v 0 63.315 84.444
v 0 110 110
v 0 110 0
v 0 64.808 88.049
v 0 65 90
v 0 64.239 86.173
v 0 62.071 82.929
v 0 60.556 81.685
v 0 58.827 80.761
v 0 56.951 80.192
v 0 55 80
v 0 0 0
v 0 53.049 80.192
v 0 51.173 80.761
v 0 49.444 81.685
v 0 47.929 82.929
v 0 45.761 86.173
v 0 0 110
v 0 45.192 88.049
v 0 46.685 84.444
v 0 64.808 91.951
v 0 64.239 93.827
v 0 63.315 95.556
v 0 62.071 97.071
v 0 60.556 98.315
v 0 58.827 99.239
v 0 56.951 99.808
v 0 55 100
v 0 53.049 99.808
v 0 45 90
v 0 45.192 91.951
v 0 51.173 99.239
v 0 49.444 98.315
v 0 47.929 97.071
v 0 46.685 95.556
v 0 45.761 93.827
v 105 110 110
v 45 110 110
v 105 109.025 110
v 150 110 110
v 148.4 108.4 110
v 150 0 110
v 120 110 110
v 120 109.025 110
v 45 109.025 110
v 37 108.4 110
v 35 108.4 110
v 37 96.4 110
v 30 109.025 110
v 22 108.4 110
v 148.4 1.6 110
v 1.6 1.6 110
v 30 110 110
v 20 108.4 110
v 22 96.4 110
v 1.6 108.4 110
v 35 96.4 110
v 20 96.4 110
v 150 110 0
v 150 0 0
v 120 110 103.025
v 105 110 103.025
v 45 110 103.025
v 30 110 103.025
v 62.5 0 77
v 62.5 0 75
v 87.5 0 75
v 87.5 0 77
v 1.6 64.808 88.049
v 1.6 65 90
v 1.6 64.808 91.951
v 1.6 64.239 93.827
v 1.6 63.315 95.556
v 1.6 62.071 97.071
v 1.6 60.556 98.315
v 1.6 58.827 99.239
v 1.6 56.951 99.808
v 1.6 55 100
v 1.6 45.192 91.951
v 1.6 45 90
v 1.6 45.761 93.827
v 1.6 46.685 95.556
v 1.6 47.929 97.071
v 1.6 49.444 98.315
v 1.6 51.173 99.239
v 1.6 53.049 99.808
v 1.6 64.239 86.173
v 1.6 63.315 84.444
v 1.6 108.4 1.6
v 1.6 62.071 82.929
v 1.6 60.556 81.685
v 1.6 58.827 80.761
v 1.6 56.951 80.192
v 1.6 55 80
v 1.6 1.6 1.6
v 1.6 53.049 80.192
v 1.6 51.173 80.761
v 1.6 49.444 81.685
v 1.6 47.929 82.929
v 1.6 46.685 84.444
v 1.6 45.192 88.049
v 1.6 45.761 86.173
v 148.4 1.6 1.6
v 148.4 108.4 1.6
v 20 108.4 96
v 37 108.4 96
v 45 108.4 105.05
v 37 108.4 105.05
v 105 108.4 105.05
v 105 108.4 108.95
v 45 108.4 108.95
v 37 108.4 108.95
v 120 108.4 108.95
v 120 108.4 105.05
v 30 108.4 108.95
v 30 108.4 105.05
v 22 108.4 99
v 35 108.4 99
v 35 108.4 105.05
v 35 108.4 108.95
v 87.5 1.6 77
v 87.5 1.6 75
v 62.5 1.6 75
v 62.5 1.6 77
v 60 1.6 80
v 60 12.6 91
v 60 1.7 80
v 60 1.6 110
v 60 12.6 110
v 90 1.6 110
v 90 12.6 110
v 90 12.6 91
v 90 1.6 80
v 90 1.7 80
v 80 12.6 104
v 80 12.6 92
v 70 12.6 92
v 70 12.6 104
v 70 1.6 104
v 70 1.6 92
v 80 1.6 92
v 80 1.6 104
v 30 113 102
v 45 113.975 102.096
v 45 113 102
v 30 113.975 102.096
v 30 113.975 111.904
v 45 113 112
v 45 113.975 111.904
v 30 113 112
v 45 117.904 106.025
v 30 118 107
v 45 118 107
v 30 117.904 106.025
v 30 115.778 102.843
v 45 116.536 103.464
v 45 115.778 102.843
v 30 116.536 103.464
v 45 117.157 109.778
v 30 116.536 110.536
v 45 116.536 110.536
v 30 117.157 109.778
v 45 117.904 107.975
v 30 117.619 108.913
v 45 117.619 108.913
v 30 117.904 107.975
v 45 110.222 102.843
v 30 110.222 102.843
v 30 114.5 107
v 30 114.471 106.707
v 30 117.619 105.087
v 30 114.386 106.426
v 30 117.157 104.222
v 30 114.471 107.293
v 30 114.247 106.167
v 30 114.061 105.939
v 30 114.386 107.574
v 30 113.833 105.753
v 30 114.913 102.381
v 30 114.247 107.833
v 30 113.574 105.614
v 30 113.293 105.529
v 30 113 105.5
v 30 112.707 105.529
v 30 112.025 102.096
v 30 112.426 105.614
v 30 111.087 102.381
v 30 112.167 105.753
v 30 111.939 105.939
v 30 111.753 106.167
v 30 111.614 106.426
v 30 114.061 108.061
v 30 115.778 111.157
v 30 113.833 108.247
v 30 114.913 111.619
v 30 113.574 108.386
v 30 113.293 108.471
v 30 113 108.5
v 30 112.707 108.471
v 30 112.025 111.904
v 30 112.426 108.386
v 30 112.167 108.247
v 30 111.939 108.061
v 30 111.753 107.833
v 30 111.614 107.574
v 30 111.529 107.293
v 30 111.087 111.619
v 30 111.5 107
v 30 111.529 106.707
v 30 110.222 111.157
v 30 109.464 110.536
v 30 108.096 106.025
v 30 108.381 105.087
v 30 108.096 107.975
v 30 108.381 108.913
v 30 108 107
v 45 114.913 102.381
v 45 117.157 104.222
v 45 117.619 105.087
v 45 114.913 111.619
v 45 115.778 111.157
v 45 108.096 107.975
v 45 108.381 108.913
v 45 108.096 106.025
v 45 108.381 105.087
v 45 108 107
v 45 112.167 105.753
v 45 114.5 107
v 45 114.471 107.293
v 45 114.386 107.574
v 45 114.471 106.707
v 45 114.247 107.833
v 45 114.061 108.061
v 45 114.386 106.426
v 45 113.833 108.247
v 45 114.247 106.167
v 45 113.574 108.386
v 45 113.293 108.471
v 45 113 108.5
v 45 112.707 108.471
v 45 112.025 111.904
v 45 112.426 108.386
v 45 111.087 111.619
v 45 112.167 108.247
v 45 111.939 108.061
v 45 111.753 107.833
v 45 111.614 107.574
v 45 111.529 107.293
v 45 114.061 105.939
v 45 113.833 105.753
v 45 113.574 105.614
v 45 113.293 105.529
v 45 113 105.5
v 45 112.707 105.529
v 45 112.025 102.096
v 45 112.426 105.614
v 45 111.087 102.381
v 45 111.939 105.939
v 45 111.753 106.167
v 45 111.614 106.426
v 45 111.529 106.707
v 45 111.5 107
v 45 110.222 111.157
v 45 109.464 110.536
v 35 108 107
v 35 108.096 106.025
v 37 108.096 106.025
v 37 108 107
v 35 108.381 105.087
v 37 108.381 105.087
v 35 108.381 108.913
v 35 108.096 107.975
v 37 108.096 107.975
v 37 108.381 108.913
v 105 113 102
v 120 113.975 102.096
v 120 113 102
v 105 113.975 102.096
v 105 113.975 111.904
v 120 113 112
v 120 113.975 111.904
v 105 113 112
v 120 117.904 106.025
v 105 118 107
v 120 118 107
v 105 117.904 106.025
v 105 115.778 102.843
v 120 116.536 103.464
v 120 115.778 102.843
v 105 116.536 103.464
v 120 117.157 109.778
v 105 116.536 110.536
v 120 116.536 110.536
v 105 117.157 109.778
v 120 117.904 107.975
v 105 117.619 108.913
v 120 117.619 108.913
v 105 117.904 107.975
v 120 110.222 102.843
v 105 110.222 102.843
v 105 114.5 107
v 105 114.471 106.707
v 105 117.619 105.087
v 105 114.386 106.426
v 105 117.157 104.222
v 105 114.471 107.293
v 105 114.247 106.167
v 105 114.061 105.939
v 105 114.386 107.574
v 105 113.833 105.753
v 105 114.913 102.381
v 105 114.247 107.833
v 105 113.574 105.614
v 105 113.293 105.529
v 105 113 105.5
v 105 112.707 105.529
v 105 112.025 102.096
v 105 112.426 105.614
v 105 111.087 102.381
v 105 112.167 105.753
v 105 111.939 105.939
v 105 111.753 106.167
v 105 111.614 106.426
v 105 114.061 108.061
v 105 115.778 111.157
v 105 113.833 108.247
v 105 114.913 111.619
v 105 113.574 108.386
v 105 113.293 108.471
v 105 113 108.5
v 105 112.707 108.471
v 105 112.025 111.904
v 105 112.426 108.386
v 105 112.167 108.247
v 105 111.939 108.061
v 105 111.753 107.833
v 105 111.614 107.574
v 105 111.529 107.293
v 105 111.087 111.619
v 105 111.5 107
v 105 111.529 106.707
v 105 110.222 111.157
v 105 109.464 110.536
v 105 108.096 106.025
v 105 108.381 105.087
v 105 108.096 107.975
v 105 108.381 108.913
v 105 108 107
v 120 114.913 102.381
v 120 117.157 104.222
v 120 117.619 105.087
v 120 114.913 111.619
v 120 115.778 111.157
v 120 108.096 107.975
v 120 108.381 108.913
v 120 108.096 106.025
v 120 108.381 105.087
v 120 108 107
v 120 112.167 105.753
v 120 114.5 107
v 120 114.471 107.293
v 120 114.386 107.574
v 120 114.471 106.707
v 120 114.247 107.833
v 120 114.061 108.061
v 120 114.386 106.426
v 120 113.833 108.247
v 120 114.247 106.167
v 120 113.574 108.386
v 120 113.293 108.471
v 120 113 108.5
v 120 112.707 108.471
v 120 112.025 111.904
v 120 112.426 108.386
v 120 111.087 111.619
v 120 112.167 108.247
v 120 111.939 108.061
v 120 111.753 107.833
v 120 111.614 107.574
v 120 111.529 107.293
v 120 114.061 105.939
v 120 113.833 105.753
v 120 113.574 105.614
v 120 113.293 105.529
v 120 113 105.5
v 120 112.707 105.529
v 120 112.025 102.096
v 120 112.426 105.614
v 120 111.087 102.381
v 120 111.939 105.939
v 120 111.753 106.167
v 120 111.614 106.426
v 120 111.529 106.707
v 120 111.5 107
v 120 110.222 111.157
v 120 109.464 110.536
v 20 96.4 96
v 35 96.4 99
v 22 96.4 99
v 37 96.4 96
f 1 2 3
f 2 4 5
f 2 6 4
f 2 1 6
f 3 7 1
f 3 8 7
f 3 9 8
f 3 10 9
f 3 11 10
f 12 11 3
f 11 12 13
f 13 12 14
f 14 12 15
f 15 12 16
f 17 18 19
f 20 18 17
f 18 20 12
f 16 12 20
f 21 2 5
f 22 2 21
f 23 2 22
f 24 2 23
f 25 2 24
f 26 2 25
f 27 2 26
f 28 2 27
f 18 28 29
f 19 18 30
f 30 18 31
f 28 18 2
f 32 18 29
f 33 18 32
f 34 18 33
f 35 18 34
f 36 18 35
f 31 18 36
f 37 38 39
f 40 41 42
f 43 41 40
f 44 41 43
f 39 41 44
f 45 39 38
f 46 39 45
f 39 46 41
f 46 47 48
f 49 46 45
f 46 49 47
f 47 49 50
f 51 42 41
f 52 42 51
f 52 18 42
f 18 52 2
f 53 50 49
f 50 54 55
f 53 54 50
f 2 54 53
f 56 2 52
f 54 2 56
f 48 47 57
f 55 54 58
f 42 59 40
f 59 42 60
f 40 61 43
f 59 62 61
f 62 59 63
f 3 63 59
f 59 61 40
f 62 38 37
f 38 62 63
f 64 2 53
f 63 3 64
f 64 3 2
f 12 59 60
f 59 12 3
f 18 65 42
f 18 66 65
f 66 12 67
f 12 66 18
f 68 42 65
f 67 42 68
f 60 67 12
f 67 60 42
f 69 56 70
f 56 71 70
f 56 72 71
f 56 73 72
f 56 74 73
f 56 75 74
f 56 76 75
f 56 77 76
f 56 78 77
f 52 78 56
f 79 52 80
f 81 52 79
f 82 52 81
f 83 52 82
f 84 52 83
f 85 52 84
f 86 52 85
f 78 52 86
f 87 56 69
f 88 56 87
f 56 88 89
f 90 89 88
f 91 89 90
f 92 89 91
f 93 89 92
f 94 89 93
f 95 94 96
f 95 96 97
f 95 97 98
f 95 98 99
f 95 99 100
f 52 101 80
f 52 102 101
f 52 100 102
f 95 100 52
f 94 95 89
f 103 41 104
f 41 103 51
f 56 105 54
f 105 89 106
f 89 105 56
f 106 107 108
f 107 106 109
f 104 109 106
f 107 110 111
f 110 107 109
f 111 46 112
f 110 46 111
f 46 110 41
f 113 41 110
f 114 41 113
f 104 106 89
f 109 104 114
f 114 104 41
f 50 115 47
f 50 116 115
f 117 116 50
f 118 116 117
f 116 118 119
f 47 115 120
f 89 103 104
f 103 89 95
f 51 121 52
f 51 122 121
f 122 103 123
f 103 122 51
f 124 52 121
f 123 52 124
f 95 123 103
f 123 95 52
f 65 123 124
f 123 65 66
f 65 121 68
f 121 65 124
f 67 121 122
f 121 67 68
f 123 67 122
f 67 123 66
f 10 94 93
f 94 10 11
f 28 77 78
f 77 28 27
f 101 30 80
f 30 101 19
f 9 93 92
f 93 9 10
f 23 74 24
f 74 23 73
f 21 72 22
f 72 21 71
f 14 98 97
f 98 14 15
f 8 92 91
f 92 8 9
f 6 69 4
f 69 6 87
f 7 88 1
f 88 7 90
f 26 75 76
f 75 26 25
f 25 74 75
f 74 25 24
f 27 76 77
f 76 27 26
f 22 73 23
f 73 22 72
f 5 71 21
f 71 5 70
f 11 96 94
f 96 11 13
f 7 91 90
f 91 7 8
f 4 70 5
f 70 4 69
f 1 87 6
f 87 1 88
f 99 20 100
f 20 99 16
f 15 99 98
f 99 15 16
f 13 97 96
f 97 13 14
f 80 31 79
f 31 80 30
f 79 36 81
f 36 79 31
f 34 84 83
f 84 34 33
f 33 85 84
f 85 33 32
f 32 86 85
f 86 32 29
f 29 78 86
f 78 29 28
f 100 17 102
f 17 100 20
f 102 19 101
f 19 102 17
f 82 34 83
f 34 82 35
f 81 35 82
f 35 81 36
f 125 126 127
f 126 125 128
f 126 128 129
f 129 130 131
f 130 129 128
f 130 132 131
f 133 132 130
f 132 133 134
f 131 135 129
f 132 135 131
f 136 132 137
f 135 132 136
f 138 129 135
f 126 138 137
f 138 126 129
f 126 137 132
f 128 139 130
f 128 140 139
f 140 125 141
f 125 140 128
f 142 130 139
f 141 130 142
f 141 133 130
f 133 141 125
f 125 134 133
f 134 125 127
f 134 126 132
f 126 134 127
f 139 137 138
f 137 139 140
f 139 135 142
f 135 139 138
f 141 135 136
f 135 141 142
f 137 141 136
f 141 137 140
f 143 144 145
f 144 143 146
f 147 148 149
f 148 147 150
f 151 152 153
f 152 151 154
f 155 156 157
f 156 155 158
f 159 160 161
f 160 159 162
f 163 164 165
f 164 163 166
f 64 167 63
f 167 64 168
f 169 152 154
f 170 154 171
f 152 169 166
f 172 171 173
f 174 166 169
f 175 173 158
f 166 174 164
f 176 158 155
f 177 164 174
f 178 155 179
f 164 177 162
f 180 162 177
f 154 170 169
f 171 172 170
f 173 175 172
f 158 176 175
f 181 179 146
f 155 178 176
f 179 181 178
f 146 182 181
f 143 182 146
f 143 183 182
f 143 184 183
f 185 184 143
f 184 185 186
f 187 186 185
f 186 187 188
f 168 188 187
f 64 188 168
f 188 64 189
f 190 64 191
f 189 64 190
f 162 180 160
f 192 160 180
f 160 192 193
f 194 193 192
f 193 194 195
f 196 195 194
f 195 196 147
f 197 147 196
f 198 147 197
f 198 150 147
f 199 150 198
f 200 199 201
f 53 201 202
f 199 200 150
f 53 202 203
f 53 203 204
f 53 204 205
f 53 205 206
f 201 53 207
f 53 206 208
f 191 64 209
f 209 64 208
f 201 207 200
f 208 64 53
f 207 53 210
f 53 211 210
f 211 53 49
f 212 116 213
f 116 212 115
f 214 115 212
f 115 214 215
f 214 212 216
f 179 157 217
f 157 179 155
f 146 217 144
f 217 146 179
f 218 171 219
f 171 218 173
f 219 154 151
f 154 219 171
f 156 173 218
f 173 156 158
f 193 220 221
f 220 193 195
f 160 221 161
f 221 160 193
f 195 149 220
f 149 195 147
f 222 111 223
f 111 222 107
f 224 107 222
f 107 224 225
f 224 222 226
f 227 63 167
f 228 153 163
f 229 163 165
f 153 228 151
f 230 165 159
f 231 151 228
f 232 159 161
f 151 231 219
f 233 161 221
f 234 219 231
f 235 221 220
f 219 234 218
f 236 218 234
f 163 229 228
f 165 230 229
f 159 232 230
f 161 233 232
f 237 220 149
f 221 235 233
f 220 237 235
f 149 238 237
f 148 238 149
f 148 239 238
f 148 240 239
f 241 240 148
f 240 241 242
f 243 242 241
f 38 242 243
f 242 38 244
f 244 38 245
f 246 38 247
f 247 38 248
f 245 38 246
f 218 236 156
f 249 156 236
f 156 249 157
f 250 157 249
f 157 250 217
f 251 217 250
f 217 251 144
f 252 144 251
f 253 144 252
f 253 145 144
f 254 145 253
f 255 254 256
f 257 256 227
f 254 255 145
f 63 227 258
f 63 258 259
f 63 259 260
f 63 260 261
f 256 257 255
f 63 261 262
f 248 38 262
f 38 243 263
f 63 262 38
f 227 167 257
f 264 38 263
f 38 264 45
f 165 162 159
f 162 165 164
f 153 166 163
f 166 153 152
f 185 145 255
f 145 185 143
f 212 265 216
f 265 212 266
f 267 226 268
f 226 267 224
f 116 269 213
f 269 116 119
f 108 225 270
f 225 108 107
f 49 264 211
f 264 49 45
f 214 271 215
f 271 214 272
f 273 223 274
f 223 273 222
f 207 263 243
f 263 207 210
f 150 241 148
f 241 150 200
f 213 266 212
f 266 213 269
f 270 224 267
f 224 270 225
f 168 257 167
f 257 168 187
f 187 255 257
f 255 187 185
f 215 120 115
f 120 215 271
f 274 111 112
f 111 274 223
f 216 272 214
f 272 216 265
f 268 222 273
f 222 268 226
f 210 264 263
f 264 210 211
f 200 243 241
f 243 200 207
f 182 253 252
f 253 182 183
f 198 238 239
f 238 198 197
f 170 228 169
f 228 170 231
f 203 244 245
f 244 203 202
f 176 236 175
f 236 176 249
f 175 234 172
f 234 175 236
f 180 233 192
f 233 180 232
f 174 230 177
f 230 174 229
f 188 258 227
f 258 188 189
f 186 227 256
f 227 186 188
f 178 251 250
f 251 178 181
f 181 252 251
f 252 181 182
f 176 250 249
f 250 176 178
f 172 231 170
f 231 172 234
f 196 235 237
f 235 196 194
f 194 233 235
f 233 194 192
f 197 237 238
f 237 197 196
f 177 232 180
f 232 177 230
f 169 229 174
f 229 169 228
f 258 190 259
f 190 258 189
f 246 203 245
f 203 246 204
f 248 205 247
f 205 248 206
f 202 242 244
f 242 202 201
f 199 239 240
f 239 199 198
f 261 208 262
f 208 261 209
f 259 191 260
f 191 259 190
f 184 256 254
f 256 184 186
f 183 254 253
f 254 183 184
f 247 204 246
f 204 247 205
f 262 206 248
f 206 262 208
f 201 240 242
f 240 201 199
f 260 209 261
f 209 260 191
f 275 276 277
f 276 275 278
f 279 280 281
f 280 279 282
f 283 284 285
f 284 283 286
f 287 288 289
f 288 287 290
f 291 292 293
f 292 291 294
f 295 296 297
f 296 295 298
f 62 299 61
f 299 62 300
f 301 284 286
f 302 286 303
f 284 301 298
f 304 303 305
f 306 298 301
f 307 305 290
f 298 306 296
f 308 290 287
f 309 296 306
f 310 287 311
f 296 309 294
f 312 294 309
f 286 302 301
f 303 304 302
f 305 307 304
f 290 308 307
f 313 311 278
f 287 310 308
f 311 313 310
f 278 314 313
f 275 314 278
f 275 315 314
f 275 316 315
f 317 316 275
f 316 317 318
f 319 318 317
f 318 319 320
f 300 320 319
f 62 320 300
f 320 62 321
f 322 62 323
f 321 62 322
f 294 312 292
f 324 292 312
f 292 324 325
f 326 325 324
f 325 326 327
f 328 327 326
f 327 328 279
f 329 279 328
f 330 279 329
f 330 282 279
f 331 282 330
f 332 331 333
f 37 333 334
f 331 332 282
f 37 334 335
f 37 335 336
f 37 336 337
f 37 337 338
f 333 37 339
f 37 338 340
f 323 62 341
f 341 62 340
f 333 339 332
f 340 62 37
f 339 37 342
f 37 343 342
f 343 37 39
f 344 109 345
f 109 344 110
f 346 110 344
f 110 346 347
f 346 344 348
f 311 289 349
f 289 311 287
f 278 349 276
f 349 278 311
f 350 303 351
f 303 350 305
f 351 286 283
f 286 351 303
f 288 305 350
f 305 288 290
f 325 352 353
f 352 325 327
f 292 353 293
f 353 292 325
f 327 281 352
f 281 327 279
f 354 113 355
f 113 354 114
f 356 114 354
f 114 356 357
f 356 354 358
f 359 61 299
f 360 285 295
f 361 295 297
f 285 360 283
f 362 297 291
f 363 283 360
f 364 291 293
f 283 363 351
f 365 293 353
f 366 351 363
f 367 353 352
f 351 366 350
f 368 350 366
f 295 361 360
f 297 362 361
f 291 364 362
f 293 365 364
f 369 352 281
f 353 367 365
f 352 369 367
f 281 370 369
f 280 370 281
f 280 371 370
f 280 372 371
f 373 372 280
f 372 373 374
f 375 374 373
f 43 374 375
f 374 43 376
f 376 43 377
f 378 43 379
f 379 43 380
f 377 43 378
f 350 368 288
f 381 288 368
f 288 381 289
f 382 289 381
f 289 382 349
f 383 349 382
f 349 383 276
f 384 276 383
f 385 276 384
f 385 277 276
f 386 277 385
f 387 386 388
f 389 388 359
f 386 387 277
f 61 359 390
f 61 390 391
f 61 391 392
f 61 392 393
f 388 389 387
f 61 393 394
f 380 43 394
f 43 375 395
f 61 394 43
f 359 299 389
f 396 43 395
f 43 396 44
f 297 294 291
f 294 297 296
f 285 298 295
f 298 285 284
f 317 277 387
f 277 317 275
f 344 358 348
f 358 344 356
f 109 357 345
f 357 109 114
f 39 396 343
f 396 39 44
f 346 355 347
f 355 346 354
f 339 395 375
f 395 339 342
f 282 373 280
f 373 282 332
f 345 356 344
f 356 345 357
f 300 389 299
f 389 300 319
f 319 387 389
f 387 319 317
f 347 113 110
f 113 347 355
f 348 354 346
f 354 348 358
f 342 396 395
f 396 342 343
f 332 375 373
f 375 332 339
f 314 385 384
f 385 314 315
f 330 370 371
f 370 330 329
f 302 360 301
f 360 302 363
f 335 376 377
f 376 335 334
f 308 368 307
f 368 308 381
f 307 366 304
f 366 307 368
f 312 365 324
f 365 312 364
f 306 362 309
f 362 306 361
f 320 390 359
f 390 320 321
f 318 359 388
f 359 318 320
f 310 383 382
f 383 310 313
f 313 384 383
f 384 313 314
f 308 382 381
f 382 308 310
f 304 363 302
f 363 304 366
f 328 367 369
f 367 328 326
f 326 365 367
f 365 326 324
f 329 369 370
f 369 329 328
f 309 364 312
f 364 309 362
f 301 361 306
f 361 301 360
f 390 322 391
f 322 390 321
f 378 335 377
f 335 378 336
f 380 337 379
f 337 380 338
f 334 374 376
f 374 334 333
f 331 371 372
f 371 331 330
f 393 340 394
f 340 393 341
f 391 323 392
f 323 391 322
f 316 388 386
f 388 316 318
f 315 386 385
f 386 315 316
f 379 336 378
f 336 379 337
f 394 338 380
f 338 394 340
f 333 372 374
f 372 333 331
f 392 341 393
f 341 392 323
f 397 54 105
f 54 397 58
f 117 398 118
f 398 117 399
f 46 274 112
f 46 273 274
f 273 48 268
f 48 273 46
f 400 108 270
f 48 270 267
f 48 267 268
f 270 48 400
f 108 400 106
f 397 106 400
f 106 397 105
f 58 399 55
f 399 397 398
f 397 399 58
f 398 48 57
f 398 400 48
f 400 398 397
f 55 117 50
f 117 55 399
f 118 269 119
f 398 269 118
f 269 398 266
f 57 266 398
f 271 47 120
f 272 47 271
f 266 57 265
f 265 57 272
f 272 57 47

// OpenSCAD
// Smart Delivery Bin - Box Only
// All dimensions in millimeters (mm)

/* --- Parameters --- */
width = 150;
depth = 110;
height = 110;
wall = 1.6;

// OLED Cutout
oled_w = 26.5;
oled_h = 14.5;
oled_z = 90; 

// Keypad Ribbon Slit
slit_w = 25;
slit_h = 2;
slit_z = 75; 

// Hinge Parameters
hinge_r = 5;
hinge_hole_r = 1.5; // 3mm diameter hole 
hinge_w = 15;

/* --- Modules --- */

module hinge_knuckle() {
    difference() {
        cylinder(r=hinge_r, h=hinge_w, $fn=32);
        translate([0,0,-1]) cylinder(r=hinge_hole_r, h=hinge_w+2, $fn=32);
    }
}

module main_box() {
    union() {
        difference() {
            // Outer solid box
            cube([width, depth, height]);
            
            // Inner hollow cavity
            translate([wall, wall, wall])
                cube([width - 2*wall, depth - 2*wall, height]); 
                
            // Keypad Ribbon Slit
            translate([width/2 - slit_w/2, -1, slit_z])
                cube([slit_w, wall+2, slit_h]);
                
            // Wire Routing Hole (Left Wall)
            // Allows wires to pass from the outside ESP32 to the inside lock/sensor
            translate([-1, depth/2, height - 20])
                rotate([0, 90, 0])
                cylinder(d=20, h=wall+2, $fn=32);
        }
        
        // Latch Catch for Lid-Mounted Solenoid
        // This block catches the slanted tongue when it springs out!
        translate([width/2 - 15, wall, height - 19]) {
            difference() {
                union() {
                    // Solid catch block attached to the front wall
                    cube([30, 11, 19]);
                    // 45-degree wedge underneath so it prints perfectly without supports!
                    hull() {
                        cube([30, 11, 0.1]);
                        translate([0, 0, -11]) cube([30, 0.1, 0.1]);
                    }
                }
                // Rectangular hole for the tongue to snap into
                translate([10, -1, 1]) cube([10, 13, 12]);
            }
        }
            
        // Box Hinges
        // Shifted out to exactly depth + 3 so the cylinder perfectly touches the inner wall without protruding!
        translate([width/4 - hinge_w/2, depth + 3, height - 3]) rotate([0, 90, 0]) hinge_knuckle();
        translate([3*width/4 - hinge_w/2, depth + 3, height - 3]) rotate([0, 90, 0]) hinge_knuckle();
        
        // Push Button Pocket (Limit Switch)
        // A U-shaped pocket that bridges perfectly when printed upside down!
        // Gives a 13x12mm recessed platform so a 12mm button sticks up exactly 1mm to be pressed by the lid.
        // Moved to the back wall so the heavy lid acts as a lever and easily depresses it!
        translate([20, depth - wall - 12, height - 14]) {
            cube([17, 12, 3]); // The shelf (bridges the gap)
            translate([0, 0, 3]) cube([2, 12, 11]); // Left pocket wall
            translate([15, 0, 3]) cube([2, 12, 11]); // Right pocket wall
        }
    }
}

// Render the main box
main_box();
